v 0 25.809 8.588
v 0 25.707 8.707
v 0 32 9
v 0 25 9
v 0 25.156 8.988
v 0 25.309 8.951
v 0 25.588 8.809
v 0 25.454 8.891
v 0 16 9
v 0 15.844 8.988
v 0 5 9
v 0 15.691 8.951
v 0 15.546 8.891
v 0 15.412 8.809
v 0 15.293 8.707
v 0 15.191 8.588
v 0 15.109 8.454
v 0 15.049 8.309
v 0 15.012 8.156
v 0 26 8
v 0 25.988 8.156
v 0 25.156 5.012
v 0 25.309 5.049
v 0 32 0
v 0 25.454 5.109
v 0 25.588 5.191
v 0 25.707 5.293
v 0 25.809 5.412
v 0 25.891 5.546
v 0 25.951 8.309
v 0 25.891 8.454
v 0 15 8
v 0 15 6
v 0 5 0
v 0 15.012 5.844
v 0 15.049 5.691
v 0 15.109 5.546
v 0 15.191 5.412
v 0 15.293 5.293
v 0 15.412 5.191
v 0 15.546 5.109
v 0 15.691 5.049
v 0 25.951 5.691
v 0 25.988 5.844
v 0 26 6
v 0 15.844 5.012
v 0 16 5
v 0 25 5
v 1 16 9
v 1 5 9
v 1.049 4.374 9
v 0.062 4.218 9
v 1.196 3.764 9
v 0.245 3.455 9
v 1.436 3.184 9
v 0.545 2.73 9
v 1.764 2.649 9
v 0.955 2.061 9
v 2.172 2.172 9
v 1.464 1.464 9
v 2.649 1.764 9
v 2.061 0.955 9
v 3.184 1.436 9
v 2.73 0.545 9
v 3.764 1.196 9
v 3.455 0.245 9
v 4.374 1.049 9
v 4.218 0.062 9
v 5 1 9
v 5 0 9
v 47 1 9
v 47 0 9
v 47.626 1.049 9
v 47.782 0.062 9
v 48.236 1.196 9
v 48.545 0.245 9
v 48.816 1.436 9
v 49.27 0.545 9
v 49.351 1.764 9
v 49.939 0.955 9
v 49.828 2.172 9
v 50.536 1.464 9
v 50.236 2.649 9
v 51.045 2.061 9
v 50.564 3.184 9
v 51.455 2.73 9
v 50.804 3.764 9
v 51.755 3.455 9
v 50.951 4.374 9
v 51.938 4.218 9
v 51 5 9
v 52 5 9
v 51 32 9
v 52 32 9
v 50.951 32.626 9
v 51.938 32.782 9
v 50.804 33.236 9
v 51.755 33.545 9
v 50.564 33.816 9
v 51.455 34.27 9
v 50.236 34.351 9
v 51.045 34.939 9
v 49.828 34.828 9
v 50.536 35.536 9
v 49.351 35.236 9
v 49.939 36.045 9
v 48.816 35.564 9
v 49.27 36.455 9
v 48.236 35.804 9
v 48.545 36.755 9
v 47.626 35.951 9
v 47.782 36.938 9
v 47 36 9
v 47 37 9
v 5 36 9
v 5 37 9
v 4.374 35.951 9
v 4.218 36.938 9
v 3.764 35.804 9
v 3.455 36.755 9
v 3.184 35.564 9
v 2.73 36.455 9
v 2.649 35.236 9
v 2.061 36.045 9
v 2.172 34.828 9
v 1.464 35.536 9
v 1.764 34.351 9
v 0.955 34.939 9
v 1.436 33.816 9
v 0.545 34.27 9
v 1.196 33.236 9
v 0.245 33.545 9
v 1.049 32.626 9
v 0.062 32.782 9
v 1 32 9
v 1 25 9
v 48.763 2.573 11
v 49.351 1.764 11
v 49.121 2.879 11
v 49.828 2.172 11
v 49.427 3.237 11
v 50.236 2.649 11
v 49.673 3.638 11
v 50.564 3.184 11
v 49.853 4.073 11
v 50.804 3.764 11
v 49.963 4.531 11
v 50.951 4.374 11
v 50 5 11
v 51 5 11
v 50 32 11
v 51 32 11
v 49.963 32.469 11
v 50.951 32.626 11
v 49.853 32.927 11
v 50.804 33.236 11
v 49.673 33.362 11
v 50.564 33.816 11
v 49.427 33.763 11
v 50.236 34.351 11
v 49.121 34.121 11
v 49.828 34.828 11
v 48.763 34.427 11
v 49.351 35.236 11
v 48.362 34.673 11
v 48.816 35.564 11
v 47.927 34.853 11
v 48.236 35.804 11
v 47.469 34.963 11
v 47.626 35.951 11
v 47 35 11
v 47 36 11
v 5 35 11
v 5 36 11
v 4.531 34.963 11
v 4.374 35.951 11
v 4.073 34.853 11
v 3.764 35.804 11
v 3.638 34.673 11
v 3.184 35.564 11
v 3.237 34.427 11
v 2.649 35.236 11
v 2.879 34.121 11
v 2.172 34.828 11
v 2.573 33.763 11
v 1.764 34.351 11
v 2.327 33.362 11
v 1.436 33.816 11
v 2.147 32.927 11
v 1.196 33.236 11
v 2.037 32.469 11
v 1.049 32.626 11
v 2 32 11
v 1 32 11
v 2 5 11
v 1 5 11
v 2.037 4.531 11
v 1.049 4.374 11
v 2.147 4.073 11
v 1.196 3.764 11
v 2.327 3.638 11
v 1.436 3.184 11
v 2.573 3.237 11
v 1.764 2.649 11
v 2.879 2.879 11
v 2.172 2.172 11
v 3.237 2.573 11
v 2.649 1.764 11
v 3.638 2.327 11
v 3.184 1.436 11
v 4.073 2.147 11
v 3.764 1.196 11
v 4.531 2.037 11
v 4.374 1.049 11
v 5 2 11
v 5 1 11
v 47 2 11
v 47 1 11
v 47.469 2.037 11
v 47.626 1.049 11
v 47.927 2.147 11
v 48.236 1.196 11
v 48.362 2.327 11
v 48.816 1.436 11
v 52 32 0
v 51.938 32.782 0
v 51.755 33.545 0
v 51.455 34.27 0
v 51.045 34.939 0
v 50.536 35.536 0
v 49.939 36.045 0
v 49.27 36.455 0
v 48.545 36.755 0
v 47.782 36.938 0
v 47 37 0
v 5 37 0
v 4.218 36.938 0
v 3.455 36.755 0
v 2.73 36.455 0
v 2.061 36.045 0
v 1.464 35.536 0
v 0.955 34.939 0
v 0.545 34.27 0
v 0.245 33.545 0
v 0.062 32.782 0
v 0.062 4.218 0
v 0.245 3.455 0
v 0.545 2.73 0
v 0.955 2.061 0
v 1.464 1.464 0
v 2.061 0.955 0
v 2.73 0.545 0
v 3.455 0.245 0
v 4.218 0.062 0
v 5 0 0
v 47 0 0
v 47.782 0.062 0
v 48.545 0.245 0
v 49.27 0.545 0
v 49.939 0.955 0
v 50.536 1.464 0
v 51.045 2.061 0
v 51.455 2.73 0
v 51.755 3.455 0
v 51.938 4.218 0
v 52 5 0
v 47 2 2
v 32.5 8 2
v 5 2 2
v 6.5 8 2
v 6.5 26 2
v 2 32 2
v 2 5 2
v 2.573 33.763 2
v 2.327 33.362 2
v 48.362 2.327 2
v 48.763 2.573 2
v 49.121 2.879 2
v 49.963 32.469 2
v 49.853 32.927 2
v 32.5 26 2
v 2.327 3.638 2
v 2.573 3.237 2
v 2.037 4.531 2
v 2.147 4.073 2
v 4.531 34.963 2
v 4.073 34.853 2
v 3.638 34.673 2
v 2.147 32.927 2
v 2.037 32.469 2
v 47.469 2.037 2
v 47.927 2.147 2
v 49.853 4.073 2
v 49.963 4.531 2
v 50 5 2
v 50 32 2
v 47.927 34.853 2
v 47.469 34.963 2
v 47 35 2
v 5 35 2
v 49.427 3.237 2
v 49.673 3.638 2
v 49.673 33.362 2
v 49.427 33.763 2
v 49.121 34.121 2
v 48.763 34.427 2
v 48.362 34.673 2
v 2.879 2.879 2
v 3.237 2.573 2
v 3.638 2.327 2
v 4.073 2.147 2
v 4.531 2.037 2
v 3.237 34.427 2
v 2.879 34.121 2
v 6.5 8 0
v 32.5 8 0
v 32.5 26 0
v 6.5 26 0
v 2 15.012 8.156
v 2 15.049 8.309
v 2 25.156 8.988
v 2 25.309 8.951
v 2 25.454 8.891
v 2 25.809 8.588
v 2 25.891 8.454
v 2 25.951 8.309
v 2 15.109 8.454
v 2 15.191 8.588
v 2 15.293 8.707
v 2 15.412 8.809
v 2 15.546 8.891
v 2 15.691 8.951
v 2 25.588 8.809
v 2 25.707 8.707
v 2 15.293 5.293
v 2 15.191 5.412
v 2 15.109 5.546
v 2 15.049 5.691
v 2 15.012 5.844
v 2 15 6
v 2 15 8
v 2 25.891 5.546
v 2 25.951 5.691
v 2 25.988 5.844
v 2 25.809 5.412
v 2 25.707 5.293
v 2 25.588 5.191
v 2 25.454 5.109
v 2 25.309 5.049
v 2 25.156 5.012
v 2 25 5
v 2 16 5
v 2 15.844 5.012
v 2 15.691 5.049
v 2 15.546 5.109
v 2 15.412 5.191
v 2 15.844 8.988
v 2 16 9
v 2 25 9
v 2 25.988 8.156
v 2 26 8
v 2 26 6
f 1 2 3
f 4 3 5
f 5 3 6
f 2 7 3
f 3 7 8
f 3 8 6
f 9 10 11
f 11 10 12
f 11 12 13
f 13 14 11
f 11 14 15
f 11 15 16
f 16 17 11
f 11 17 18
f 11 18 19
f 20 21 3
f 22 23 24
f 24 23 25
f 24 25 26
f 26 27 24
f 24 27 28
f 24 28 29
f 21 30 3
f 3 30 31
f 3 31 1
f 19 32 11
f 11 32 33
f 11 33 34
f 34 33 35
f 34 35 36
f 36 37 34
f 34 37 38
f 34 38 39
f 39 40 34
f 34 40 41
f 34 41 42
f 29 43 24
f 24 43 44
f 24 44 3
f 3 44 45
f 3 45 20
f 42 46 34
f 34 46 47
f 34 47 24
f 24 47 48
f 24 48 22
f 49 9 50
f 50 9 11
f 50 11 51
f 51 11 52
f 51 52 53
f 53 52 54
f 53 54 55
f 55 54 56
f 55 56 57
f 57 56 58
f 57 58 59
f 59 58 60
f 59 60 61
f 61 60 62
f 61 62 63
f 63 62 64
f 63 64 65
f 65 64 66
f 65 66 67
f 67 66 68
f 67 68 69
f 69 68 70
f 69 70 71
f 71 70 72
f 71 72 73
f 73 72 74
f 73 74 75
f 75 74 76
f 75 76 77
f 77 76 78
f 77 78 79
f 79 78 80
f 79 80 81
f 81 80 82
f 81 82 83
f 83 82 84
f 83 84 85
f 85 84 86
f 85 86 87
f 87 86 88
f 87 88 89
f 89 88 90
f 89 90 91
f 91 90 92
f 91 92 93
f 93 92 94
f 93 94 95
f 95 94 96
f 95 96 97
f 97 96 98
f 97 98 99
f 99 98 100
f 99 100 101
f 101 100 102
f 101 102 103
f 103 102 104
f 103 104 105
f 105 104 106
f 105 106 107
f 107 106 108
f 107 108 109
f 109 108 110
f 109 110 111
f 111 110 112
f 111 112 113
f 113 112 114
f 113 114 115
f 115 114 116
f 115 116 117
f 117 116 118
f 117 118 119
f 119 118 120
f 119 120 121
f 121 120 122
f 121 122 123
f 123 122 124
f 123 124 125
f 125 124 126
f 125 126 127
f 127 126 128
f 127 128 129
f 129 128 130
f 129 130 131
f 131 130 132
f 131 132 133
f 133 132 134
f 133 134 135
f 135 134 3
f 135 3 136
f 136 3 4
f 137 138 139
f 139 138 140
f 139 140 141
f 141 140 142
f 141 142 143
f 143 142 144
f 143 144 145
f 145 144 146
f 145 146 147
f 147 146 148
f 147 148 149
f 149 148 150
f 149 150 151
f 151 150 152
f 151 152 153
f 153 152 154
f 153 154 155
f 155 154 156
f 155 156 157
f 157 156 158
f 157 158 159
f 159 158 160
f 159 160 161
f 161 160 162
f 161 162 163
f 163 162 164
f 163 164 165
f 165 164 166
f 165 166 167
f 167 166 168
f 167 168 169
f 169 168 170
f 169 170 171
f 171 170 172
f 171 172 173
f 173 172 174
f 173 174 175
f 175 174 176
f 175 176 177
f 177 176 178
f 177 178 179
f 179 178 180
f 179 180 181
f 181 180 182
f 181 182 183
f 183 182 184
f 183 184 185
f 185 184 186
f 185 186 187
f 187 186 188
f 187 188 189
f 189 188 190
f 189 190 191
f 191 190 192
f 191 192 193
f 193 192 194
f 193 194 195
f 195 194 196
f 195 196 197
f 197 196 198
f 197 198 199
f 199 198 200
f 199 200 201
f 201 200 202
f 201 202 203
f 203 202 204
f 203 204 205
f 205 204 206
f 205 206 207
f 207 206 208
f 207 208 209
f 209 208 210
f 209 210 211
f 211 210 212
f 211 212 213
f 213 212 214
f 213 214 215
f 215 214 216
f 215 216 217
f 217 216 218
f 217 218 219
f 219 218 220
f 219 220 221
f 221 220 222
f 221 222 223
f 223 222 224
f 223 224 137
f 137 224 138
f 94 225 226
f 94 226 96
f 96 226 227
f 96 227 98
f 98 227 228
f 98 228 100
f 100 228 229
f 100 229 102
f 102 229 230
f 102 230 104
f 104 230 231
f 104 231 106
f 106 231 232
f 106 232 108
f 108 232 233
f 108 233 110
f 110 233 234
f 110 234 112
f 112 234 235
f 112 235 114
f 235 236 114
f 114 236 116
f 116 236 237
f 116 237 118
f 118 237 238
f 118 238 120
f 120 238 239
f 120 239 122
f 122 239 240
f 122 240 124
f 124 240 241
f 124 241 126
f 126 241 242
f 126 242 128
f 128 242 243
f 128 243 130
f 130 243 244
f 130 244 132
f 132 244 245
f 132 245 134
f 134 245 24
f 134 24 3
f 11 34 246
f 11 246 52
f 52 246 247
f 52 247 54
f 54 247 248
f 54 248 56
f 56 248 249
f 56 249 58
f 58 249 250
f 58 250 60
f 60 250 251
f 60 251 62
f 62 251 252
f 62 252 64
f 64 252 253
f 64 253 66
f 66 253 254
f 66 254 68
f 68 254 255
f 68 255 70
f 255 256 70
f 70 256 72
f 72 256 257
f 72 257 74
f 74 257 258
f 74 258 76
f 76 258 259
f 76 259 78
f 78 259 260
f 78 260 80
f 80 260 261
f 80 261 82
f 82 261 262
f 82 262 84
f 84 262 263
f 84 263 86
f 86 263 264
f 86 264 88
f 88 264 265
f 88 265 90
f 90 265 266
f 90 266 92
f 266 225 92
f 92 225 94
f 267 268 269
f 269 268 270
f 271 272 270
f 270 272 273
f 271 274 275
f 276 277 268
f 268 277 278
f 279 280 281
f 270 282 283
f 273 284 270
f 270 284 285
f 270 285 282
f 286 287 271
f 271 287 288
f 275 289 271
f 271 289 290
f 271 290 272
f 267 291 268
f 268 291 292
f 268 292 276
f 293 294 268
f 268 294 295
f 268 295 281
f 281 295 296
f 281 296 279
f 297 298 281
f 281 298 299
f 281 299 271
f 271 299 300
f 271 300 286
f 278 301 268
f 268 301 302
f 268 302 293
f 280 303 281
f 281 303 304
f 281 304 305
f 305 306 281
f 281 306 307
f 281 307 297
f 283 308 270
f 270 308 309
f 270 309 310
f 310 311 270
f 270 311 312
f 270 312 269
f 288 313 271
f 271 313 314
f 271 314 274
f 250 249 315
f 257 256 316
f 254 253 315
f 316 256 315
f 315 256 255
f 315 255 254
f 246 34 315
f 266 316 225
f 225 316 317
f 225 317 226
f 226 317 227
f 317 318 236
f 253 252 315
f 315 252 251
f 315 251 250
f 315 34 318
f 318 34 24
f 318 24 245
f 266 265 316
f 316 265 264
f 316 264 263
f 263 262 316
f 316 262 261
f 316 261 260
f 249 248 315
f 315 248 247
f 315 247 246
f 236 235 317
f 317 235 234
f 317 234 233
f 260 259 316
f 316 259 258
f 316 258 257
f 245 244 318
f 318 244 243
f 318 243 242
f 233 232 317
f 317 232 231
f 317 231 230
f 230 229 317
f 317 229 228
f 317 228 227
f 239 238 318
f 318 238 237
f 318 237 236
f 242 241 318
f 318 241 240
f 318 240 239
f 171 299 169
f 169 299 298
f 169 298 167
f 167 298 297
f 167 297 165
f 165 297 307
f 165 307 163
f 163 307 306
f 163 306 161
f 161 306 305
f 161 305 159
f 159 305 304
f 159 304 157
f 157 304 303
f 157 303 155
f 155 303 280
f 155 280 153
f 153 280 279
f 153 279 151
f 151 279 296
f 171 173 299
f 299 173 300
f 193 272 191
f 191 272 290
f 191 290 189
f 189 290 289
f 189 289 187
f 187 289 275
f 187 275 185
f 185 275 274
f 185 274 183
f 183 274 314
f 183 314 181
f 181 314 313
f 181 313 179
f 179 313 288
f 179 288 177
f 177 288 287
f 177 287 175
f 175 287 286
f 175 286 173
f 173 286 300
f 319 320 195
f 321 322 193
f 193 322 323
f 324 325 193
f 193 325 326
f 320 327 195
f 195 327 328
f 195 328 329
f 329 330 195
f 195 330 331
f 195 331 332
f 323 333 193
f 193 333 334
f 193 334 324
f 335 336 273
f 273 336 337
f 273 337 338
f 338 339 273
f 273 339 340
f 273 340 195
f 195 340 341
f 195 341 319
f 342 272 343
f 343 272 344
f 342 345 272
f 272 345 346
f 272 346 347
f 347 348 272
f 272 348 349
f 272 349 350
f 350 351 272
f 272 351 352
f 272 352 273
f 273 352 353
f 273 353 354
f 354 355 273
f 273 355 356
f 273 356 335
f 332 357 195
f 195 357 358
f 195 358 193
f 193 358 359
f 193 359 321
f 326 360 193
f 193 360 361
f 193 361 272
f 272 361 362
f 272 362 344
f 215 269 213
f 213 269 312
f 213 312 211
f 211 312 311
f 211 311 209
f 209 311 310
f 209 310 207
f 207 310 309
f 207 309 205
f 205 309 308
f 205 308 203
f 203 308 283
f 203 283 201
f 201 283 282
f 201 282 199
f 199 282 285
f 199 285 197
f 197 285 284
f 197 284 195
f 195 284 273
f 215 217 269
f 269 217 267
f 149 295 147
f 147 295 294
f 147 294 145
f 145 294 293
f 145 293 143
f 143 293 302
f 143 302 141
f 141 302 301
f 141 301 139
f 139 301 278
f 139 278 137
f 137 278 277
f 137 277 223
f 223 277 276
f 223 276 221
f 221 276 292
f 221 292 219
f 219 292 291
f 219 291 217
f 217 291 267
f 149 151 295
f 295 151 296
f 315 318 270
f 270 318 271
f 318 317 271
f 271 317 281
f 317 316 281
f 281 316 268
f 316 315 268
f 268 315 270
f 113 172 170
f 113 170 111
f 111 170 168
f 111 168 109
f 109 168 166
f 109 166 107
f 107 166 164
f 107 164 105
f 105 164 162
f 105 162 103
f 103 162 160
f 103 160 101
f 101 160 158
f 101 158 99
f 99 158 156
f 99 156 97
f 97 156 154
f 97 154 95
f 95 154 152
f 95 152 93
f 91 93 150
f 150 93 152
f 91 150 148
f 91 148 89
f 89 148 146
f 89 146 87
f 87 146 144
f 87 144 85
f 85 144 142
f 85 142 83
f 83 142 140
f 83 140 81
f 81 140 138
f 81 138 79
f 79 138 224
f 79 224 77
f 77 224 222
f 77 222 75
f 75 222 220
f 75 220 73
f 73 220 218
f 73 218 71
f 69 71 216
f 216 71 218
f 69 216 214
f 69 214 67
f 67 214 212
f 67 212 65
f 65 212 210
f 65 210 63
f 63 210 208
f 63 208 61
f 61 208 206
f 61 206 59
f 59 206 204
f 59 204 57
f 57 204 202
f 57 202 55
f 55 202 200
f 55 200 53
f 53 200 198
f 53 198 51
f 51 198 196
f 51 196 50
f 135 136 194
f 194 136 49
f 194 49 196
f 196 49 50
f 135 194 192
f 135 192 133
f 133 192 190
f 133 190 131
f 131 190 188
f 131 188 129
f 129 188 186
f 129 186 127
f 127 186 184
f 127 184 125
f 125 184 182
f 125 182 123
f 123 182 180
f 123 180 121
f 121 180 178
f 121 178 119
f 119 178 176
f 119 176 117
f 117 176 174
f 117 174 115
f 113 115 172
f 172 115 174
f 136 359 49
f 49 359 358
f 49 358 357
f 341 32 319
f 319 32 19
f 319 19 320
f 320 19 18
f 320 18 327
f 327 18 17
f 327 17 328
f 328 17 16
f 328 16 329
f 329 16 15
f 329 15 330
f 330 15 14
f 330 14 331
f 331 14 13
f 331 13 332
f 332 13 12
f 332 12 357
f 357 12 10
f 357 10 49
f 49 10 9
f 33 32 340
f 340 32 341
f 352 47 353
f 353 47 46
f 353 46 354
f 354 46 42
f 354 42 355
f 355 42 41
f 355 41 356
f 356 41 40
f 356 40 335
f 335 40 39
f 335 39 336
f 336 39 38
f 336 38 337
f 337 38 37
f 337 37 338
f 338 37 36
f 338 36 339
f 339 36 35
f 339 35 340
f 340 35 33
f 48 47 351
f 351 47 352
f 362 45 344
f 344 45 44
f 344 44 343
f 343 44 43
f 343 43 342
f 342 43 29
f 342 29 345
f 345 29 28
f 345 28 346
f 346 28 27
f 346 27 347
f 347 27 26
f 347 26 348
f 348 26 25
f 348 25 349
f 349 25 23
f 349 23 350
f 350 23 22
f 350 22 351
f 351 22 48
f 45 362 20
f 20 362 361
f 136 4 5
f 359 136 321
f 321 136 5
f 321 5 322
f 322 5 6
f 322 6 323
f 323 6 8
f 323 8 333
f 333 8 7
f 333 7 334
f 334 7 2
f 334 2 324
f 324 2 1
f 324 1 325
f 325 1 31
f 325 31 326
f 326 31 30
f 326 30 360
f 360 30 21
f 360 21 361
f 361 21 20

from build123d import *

# Parameters (mm, degrees)
BOSS_EXTRU_1_DEPTH      = 11
COQUE5_T                = -2
ESQUISSE5_W             = 26
ESQUISSE5_H             = 18
ENL_V_MAT_EXTRU_4_DEPTH = 65.451532177
ESQUISSE6_OUTSIDE_W     = 66.952
ESQUISSE6_OUTSIDE_H     = 51.952
ENL_V_MAT_EXTRU_5_DEPTH = 2
ENL_V_MAT_EXTRU_6_DEPTH = 10


with BuildPart() as part:
    # Esquisse1 → Boss.-Extru.1 (new body)
    with BuildSketch(Plane.XY):
        with BuildLine():
            Line((5, 0), (47, 0))
            ThreePointArc((47, 0), (50.535533906, 1.464466094), (52, 5))
            Line((52, 5), (52, 32))
            ThreePointArc((52, 32), (50.535533906, 35.535533906), (47, 37))
            Line((47, 37), (5, 37))
            ThreePointArc((5, 37), (1.464466094, 35.535533906), (0, 32))
            Line((0, 32), (0, 5))
            ThreePointArc((0, 5), (1.464466094, 1.464466094), (5, 0))
        make_face()
    extrude(amount=BOSS_EXTRU_1_DEPTH)

    # Coque5
    coque5_openings = [part.faces().sort_by_distance(p)[0] for p in [
        (26, 18.5, 11),
    ]]
    offset(amount=COQUE5_T, openings=coque5_openings, kind=Kind.INTERSECTION)

    # Esquisse5 → Enlèv. mat.-Extru.4 (cut, through all)
    with BuildSketch(Plane.XY.offset(2)):
        with Locations((19.5, 17)):
            Rectangle(ESQUISSE5_W, ESQUISSE5_H)
    extrude(amount=-ENL_V_MAT_EXTRU_4_DEPTH, mode=Mode.SUBTRACT)

    # Esquisse6 outside → Enlèv. mat.-Extru.5 (cut)
    with BuildSketch(Plane.XY.offset(11)):
        with Locations((26, 18.5)):
            Rectangle(ESQUISSE6_OUTSIDE_W, ESQUISSE6_OUTSIDE_H)
        with BuildLine():
            Line((47, 36), (5, 36))
            ThreePointArc((5, 36), (2.171572875, 34.828427125), (1, 32))
            Line((1, 32), (1, 5))
            ThreePointArc((1, 5), (2.171572875, 2.171572875), (5, 1))
            Line((5, 1), (47, 1))
            ThreePointArc((47, 1), (49.828427125, 2.171572875), (51, 5))
            Line((51, 5), (51, 32))
            ThreePointArc((51, 32), (49.828427125, 34.828427125), (47, 36))
        make_face(mode=Mode.SUBTRACT)
    extrude(amount=-ENL_V_MAT_EXTRU_5_DEPTH, mode=Mode.SUBTRACT)

    # Esquisse7 → Enlèv. mat.-Extru.6 (cut)
    with BuildSketch(Plane.ZY):
        with BuildLine():
            Line((6, 26), (8, 26))
            ThreePointArc((8, 26), (8.707106781, 25.707106781), (9, 25))
            Line((9, 25), (9, 16))
            ThreePointArc((9, 16), (8.707106781, 15.292893219), (8, 15))
            Line((8, 15), (6, 15))
            ThreePointArc((6, 15), (5.292893219, 15.292893219), (5, 16))
            Line((5, 16), (5, 25))
            ThreePointArc((5, 25), (5.292893219, 25.707106781), (6, 26))
        make_face()
    extrude(amount=-ENL_V_MAT_EXTRU_6_DEPTH, mode=Mode.SUBTRACT)


solid = part.part
